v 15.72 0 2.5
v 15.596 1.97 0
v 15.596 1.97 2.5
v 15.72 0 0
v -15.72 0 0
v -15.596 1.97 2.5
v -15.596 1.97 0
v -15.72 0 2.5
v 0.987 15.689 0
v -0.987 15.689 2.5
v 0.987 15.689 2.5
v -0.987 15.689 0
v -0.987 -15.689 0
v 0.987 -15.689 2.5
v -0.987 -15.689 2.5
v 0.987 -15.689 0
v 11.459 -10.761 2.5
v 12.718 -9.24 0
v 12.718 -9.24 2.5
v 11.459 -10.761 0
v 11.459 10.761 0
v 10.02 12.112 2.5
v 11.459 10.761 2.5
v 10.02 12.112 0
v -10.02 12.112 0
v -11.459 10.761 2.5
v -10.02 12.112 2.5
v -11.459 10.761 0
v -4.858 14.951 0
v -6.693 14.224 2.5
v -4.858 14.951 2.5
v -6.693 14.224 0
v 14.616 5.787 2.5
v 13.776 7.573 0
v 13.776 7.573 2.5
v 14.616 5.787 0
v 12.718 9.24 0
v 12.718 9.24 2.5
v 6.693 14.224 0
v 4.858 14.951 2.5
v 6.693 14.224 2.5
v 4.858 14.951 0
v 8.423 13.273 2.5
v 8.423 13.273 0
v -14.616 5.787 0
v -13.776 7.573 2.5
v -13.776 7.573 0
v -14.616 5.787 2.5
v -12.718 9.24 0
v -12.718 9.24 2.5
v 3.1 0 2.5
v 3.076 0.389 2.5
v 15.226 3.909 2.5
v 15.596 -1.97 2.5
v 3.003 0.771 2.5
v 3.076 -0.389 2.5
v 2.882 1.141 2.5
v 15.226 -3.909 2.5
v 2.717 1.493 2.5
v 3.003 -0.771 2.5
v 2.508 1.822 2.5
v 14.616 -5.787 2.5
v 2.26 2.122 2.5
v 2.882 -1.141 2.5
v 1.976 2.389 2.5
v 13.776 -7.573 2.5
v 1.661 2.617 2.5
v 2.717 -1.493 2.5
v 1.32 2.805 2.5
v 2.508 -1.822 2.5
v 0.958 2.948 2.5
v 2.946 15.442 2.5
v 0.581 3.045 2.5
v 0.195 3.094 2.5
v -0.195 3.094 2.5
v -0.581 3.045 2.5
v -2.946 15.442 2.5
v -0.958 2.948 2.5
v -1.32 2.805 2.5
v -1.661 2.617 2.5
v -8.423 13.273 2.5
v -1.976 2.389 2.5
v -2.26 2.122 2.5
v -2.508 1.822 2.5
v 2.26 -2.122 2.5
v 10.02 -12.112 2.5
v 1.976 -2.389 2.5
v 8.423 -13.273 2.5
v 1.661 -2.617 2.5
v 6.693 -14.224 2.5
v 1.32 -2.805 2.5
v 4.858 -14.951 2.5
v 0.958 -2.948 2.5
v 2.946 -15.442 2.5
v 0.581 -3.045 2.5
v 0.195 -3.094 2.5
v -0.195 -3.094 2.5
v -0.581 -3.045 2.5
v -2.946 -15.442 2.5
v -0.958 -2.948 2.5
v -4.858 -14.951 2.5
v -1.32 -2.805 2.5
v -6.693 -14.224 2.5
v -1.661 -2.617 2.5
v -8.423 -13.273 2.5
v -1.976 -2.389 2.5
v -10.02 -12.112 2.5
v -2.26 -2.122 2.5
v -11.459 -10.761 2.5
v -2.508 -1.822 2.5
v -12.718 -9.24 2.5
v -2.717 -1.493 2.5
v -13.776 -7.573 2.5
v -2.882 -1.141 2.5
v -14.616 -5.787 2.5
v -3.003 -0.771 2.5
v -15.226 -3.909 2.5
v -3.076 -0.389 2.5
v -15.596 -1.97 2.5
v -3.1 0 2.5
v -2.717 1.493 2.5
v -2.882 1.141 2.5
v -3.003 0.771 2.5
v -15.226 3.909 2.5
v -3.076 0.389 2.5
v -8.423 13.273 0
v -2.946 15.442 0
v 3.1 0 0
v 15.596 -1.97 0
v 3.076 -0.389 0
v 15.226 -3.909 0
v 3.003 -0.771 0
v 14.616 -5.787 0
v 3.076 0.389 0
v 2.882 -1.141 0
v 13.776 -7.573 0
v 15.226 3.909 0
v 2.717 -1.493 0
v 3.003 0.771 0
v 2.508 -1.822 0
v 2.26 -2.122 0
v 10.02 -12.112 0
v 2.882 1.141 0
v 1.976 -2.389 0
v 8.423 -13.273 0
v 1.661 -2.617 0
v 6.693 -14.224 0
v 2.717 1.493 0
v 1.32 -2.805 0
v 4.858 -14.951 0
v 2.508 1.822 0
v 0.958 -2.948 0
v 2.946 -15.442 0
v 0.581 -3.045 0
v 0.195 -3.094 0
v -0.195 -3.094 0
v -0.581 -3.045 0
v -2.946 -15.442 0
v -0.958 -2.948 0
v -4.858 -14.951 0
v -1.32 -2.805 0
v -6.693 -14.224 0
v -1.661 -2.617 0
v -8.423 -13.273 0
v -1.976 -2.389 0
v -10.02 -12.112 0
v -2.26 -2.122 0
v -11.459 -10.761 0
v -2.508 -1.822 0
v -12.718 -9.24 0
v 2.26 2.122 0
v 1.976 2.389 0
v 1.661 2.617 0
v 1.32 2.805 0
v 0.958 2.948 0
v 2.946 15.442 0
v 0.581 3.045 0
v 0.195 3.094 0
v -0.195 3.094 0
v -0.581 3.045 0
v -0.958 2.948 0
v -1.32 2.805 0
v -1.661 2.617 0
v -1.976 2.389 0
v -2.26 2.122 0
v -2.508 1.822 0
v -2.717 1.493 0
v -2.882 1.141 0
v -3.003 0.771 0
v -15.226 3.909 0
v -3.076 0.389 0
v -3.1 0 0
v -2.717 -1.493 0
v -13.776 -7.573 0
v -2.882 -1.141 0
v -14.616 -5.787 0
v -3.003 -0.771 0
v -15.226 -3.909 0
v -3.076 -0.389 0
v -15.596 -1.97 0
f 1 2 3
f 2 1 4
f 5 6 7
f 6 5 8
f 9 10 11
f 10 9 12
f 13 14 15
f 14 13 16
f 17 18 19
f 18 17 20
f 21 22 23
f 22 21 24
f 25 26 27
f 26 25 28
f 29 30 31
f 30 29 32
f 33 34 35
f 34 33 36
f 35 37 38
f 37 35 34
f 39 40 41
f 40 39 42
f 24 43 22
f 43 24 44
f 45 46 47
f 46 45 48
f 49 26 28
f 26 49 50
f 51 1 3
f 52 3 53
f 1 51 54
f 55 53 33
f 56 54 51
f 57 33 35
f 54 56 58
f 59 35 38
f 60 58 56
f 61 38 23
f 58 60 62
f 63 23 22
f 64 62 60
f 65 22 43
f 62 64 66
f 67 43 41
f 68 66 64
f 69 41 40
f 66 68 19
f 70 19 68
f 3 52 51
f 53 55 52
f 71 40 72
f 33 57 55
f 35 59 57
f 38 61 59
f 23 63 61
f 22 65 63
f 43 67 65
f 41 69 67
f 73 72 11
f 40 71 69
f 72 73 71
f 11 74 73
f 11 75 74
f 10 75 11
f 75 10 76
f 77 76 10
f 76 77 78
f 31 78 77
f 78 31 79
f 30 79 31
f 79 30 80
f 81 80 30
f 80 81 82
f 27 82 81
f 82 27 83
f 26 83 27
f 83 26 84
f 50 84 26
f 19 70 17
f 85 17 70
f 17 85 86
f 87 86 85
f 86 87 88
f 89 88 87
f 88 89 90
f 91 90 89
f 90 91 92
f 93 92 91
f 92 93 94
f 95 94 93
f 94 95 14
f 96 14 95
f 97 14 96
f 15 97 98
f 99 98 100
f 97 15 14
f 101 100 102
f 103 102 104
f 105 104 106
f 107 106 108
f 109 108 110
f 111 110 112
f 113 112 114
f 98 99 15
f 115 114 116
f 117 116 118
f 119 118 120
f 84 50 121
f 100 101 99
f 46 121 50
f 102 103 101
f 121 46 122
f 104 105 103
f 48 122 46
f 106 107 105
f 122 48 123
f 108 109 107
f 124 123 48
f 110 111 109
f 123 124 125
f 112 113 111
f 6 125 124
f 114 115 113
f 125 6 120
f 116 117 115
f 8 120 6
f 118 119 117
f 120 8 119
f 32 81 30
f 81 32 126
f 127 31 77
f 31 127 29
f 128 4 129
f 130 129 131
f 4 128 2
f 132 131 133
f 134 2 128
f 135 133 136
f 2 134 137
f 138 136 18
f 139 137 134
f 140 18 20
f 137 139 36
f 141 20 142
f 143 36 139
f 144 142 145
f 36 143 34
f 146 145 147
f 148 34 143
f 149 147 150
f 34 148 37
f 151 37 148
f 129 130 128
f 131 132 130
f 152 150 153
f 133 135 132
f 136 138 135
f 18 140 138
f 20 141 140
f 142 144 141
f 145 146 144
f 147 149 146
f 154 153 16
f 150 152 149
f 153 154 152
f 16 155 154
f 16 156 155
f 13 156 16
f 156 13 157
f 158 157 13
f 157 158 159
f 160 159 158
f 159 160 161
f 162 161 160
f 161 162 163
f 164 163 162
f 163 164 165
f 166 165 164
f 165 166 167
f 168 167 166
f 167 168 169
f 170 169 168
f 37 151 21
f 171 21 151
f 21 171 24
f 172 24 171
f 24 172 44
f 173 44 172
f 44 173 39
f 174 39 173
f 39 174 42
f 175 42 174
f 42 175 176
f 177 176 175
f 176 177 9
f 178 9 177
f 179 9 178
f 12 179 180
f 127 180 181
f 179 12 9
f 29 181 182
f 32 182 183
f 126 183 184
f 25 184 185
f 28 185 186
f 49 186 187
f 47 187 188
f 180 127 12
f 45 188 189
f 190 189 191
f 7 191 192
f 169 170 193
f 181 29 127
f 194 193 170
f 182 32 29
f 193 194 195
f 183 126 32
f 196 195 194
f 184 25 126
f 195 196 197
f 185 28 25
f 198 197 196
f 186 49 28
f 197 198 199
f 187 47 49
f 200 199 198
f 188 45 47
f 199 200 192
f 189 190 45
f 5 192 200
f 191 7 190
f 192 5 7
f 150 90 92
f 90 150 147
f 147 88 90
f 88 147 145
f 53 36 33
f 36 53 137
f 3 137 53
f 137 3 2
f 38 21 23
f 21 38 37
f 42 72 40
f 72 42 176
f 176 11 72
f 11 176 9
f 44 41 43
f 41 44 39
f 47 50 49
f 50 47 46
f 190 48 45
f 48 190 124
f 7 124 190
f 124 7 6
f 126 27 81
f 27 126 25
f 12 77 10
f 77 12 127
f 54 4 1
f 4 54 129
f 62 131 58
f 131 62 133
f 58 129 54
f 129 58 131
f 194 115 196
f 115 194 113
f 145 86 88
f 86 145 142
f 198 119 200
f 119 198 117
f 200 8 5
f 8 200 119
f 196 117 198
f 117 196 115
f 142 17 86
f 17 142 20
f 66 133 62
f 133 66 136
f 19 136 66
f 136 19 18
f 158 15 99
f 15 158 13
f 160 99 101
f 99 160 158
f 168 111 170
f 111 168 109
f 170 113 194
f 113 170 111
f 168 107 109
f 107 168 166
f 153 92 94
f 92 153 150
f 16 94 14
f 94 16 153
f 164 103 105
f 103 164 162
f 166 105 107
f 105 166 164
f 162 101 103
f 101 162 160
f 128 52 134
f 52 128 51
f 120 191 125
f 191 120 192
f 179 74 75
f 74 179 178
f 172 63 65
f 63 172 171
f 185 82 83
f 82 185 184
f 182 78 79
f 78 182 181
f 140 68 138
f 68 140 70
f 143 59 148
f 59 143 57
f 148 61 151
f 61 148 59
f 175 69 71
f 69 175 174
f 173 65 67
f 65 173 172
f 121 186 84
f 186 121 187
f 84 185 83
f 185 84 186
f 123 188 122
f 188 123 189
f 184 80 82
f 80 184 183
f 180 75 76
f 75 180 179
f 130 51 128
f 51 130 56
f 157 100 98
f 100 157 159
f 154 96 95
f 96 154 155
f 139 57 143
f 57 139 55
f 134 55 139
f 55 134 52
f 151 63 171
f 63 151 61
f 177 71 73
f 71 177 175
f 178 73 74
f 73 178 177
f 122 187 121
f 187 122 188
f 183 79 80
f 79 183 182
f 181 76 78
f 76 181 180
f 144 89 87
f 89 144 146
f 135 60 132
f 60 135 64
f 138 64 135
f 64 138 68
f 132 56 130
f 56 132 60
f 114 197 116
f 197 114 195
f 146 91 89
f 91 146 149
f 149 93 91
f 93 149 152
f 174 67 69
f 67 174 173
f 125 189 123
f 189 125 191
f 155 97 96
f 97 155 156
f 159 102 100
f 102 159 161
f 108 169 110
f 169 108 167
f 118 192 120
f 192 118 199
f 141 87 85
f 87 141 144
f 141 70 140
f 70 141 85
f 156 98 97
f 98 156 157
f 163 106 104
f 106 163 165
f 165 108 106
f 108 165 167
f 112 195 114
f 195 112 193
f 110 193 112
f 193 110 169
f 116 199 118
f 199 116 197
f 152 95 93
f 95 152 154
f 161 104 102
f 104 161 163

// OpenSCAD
$fn=50;
difference() {
	cylinder(2.5,15.72,15.72);
	cylinder(2.5,3.10,3.10);
}
